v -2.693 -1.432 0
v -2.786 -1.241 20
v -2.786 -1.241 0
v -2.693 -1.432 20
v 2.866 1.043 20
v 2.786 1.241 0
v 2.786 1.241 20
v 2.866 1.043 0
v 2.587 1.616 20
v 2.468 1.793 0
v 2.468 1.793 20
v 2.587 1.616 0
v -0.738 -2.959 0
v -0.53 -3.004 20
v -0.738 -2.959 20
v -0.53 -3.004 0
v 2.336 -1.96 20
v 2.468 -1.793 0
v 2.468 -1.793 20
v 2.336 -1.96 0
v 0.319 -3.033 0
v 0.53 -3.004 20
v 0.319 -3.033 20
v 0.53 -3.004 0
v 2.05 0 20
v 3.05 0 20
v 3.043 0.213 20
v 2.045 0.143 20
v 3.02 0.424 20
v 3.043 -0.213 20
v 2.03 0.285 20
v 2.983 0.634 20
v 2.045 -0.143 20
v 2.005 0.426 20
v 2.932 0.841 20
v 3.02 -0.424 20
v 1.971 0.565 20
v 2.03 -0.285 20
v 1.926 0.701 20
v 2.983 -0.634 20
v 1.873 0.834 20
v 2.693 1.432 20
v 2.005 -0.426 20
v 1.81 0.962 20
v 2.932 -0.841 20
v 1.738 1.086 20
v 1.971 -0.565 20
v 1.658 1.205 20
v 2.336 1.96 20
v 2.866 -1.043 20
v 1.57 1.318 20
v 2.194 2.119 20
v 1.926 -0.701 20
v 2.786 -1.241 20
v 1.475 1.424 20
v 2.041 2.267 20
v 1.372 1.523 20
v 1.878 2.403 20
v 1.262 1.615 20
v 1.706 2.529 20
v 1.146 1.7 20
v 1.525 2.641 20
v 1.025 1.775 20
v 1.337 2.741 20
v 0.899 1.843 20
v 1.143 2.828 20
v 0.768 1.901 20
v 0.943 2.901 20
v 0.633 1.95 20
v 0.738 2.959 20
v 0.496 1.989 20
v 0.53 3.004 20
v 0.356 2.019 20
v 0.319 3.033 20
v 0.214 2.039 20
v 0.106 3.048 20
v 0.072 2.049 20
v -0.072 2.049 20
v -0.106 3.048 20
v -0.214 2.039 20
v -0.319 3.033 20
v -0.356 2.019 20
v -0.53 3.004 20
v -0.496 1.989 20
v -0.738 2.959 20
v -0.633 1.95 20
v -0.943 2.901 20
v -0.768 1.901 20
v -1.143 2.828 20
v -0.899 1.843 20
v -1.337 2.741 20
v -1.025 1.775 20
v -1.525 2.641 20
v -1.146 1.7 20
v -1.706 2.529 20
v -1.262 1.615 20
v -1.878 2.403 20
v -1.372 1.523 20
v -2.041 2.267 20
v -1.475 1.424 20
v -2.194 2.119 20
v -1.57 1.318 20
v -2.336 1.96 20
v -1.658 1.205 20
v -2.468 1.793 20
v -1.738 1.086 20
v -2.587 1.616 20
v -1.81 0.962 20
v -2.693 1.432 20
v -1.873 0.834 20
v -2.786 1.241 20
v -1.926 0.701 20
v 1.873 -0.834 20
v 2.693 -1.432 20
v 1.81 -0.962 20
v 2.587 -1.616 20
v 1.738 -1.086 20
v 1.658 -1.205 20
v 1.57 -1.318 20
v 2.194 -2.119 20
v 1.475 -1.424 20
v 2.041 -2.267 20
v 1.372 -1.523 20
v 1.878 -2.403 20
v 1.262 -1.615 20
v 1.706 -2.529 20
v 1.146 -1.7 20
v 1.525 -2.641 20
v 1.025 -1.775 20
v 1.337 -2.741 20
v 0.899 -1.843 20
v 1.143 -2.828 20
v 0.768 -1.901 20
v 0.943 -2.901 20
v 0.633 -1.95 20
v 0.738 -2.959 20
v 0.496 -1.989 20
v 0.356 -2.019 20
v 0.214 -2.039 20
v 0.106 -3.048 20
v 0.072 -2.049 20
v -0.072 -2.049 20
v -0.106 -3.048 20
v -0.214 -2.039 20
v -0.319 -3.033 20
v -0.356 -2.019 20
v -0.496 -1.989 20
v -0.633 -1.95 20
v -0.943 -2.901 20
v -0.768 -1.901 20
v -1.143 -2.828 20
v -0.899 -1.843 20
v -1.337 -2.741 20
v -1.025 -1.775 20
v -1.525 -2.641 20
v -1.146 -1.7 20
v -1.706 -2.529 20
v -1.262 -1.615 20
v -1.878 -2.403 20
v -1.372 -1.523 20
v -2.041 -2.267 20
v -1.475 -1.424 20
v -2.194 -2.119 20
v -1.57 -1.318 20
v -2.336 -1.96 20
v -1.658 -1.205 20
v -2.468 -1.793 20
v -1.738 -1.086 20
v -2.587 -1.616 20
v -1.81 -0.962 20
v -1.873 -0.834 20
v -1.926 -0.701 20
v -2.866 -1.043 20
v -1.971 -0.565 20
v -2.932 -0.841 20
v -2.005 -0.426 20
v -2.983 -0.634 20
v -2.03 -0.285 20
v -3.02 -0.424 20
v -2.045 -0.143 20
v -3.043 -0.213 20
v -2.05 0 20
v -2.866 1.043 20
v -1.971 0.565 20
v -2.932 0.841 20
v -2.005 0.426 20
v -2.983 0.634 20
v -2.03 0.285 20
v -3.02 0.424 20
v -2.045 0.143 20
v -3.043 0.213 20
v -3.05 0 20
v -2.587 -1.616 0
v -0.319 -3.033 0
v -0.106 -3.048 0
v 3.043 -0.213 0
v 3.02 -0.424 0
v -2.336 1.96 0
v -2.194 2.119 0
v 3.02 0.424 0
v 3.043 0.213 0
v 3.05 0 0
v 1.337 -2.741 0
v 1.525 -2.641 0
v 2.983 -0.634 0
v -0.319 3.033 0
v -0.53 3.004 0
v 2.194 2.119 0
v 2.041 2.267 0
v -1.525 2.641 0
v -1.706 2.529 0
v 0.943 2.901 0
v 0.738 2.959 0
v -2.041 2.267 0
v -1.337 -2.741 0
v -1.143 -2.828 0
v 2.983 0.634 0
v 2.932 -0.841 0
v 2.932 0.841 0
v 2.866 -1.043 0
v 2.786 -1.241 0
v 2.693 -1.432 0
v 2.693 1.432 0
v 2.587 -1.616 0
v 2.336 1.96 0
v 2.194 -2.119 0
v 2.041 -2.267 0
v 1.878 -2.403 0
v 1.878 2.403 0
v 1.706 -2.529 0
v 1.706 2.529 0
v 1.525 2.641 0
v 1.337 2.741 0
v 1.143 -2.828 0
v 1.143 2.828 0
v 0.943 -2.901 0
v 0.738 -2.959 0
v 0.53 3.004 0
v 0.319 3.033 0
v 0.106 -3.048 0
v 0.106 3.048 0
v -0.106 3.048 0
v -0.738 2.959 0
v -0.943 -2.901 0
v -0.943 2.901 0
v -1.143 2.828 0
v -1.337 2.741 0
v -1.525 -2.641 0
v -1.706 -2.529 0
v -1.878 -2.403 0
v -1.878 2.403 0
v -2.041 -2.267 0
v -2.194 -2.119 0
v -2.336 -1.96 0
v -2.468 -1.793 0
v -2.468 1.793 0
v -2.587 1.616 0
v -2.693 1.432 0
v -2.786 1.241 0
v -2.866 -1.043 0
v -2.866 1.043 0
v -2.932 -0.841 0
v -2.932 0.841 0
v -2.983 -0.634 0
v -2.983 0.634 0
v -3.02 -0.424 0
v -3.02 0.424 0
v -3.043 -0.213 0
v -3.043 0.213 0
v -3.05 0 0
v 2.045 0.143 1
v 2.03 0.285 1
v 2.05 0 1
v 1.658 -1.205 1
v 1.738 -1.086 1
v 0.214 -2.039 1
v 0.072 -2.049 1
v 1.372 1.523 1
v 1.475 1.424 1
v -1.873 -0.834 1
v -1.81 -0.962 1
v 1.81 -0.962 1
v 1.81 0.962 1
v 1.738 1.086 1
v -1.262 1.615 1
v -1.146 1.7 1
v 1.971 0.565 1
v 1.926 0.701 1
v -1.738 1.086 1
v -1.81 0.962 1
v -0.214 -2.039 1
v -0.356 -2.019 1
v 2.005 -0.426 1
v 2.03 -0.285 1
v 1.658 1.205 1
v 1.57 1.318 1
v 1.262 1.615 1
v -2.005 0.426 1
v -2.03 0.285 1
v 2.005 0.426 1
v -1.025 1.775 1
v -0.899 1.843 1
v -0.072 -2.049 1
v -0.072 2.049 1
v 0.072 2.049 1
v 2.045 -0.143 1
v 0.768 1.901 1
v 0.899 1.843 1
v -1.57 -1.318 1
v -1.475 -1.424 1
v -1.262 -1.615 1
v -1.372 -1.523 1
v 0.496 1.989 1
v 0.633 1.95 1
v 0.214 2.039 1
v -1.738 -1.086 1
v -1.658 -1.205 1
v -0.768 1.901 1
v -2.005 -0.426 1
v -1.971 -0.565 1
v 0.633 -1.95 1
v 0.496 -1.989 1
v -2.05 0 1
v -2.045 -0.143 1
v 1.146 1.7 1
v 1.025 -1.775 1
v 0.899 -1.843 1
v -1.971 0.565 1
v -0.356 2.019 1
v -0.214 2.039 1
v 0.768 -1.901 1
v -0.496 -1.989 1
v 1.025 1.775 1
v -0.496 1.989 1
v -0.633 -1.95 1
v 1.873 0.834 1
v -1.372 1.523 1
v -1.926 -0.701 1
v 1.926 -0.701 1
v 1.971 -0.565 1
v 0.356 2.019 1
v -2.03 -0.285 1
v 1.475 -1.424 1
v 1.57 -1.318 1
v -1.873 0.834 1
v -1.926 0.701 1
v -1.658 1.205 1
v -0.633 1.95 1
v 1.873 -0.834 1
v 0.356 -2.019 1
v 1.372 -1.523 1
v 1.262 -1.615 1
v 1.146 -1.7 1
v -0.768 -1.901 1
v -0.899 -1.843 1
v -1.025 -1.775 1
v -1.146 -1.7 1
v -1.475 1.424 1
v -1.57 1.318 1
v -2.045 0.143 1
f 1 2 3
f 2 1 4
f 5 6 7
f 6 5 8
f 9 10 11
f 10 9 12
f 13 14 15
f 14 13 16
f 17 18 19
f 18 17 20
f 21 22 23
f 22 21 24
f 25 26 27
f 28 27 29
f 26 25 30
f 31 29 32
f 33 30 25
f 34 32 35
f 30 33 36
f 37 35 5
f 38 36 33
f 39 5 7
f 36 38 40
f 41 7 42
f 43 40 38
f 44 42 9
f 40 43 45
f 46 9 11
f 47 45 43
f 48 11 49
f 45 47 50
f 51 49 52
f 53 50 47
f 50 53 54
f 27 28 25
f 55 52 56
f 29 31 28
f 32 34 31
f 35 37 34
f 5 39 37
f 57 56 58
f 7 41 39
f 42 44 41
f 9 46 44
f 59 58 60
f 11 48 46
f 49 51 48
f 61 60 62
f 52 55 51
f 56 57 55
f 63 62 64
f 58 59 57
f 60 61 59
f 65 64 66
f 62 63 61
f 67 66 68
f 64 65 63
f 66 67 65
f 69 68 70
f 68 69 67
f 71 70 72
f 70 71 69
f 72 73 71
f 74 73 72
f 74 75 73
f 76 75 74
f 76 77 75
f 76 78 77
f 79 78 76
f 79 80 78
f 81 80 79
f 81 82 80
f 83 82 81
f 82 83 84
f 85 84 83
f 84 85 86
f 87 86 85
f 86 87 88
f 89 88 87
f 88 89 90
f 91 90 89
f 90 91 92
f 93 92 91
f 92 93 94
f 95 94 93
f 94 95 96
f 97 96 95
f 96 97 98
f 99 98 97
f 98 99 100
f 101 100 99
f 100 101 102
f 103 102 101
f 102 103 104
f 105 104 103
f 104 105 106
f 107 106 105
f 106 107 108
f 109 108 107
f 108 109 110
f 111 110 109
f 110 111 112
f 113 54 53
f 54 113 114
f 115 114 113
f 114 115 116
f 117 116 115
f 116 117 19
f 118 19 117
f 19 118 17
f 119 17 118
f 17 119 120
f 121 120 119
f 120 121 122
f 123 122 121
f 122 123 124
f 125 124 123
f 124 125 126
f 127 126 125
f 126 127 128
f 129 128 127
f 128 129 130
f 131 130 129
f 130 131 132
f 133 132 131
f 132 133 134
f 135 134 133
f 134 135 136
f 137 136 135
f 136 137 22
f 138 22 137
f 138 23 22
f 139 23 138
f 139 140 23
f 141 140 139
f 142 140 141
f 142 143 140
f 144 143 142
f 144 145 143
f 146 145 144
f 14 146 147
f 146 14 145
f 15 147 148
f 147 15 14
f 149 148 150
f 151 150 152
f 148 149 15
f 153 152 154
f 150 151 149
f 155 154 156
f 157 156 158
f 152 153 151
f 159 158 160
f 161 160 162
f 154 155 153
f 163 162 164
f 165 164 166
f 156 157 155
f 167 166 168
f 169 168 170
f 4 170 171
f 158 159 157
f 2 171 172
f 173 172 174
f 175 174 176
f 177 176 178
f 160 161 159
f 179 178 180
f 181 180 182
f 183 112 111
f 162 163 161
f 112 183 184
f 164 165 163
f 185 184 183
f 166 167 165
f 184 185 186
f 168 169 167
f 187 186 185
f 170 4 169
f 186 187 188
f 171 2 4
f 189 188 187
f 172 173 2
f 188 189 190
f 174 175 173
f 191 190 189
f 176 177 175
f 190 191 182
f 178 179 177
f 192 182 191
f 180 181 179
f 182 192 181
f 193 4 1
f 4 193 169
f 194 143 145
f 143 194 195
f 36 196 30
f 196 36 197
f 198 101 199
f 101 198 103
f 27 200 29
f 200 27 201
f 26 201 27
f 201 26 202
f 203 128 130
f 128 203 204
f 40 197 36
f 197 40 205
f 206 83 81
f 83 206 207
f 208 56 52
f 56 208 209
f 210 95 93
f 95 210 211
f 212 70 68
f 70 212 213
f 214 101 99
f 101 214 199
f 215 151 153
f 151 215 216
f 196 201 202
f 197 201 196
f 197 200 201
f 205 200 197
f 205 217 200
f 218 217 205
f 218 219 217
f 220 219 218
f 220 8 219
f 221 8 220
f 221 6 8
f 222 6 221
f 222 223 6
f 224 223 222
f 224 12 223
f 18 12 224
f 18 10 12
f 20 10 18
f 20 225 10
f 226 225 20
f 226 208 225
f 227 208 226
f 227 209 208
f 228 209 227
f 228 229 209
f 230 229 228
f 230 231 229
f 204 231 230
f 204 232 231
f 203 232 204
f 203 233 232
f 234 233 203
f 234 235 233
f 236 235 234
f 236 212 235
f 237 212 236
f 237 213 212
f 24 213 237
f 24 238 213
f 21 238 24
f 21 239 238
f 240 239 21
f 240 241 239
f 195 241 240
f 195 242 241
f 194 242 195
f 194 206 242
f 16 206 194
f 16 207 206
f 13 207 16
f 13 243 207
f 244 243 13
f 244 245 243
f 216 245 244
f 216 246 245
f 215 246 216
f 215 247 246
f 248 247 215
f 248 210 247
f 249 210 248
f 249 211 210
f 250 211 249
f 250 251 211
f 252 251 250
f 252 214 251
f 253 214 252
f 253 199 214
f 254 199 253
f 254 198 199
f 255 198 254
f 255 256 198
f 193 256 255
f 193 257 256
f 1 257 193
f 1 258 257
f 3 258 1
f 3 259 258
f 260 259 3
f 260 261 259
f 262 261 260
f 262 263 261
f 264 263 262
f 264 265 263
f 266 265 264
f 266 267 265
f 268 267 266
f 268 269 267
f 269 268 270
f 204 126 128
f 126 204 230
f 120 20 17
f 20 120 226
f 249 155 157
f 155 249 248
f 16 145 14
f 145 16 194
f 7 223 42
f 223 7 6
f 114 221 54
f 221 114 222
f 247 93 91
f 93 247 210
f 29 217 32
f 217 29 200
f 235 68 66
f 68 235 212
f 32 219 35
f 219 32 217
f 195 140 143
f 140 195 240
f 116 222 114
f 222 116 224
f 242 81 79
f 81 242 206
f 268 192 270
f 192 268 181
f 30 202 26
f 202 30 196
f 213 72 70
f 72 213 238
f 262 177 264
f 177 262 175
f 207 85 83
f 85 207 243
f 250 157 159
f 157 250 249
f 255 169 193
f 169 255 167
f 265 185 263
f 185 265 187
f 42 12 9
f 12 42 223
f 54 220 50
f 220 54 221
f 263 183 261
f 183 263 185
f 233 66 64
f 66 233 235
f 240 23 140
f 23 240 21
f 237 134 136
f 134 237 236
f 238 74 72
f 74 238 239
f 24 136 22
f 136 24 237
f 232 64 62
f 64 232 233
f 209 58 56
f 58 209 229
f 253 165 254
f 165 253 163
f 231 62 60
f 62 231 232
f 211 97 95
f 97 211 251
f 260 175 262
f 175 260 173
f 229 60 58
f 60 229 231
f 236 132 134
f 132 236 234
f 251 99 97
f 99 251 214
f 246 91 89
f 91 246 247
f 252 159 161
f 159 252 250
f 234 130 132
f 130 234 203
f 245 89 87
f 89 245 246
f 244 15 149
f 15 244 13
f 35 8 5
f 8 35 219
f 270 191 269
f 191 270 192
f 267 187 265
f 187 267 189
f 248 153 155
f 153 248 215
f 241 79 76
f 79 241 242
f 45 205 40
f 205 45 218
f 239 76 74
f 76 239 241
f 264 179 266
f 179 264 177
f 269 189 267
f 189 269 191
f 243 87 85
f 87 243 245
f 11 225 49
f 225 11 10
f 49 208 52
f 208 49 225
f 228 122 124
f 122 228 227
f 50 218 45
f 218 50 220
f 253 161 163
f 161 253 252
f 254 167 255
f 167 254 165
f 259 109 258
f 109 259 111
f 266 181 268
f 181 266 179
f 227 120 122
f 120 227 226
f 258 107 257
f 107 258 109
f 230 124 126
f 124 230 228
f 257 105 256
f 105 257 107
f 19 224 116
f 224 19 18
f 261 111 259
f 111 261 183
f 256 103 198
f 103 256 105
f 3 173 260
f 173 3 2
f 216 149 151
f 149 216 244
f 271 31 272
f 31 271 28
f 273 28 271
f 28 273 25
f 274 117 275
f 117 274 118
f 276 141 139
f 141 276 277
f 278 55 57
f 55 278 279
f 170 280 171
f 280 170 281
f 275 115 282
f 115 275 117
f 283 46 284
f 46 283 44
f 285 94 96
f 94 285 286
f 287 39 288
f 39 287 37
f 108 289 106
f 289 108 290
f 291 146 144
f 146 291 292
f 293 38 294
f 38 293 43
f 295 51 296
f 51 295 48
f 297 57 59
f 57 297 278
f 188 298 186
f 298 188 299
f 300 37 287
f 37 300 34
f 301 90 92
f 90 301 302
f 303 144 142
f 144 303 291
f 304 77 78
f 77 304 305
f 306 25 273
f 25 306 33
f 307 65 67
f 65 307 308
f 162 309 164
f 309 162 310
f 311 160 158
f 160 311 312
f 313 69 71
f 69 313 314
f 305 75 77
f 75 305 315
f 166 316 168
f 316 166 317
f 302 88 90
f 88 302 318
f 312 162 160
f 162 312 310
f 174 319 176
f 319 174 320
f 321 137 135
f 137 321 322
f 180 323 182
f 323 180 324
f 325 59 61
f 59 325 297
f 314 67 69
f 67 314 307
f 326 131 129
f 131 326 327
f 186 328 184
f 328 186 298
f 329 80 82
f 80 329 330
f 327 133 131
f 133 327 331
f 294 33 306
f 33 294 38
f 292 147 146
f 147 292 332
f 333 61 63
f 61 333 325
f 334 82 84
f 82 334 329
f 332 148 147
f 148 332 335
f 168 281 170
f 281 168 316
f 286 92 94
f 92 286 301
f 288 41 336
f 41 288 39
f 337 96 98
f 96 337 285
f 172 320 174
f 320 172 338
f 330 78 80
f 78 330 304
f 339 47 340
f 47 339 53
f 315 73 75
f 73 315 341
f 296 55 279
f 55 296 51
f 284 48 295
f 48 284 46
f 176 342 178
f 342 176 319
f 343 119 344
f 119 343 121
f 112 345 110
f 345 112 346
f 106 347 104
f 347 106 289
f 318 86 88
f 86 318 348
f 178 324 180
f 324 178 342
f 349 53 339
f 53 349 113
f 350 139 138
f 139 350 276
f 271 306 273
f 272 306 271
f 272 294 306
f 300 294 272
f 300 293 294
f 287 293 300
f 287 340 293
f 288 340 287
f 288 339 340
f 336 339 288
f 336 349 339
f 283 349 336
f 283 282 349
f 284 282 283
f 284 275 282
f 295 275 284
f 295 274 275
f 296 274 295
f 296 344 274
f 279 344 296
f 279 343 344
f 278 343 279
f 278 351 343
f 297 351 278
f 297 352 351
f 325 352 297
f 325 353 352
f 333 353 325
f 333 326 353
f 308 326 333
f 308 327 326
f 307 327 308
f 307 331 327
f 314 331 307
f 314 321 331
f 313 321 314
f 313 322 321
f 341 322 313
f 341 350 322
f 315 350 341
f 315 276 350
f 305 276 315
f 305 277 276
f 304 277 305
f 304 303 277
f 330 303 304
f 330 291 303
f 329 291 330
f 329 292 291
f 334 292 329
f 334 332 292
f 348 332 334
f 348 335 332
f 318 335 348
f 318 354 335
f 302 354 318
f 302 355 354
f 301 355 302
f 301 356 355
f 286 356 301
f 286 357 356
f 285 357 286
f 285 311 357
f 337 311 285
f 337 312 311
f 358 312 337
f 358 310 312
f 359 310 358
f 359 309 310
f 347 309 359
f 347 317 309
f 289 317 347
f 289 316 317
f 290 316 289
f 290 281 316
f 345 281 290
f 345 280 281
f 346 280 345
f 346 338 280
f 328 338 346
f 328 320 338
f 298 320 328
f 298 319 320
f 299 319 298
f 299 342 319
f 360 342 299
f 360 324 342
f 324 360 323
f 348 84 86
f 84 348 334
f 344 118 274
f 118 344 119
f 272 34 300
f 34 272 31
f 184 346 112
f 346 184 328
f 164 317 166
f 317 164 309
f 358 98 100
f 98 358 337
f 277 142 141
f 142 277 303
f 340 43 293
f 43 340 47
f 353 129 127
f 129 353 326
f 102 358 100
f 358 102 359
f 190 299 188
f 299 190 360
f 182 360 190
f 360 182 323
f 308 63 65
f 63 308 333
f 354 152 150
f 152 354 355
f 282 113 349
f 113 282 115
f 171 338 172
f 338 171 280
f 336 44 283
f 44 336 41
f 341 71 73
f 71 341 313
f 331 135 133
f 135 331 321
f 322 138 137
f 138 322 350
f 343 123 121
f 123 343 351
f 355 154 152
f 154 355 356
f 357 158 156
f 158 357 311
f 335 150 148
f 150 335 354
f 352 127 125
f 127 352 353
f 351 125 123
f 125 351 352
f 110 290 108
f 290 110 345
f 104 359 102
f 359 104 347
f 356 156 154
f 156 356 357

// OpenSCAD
$fn=90;

height = 20;
innerDiameter = 4.1;
outterDiameter = innerDiameter+2;
difference(){
	cylinder(d=outterDiameter, h=height);
	#translate([0, 0, 1])
		cylinder(d=innerDiameter, h=height);
}
